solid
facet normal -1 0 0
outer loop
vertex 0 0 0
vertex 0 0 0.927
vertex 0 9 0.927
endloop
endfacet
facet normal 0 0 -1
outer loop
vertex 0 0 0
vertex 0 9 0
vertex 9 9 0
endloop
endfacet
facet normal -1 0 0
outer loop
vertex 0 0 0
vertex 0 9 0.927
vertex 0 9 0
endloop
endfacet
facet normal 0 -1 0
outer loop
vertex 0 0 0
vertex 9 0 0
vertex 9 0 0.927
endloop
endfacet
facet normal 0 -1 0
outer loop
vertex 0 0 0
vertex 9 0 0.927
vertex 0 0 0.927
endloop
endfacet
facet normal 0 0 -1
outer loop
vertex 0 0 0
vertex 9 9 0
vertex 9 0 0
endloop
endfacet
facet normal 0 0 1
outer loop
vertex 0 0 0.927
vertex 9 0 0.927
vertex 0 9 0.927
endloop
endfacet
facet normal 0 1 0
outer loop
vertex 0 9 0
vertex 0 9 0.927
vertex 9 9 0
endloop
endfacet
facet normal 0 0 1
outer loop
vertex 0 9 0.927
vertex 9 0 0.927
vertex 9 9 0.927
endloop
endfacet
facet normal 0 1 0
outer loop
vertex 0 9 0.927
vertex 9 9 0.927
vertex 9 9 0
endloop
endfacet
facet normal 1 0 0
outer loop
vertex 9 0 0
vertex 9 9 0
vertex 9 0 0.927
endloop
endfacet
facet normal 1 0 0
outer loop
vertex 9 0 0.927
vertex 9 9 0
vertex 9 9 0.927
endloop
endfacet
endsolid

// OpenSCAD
/* Warning, this is a very basic generator with a lot of approximation 
input data : [VGQFN, 2JW, 9x9x0.927mm, 64, , E, C04-00544E]
generated by com.zoubworld.electronics.cad.model3d.Basic
Date : Sun Feb 15 10:50:48 CET 2026
*/

//body
color("black")
translate([0,0,0])
cube([9.0,9.0,0.927], center=false);
